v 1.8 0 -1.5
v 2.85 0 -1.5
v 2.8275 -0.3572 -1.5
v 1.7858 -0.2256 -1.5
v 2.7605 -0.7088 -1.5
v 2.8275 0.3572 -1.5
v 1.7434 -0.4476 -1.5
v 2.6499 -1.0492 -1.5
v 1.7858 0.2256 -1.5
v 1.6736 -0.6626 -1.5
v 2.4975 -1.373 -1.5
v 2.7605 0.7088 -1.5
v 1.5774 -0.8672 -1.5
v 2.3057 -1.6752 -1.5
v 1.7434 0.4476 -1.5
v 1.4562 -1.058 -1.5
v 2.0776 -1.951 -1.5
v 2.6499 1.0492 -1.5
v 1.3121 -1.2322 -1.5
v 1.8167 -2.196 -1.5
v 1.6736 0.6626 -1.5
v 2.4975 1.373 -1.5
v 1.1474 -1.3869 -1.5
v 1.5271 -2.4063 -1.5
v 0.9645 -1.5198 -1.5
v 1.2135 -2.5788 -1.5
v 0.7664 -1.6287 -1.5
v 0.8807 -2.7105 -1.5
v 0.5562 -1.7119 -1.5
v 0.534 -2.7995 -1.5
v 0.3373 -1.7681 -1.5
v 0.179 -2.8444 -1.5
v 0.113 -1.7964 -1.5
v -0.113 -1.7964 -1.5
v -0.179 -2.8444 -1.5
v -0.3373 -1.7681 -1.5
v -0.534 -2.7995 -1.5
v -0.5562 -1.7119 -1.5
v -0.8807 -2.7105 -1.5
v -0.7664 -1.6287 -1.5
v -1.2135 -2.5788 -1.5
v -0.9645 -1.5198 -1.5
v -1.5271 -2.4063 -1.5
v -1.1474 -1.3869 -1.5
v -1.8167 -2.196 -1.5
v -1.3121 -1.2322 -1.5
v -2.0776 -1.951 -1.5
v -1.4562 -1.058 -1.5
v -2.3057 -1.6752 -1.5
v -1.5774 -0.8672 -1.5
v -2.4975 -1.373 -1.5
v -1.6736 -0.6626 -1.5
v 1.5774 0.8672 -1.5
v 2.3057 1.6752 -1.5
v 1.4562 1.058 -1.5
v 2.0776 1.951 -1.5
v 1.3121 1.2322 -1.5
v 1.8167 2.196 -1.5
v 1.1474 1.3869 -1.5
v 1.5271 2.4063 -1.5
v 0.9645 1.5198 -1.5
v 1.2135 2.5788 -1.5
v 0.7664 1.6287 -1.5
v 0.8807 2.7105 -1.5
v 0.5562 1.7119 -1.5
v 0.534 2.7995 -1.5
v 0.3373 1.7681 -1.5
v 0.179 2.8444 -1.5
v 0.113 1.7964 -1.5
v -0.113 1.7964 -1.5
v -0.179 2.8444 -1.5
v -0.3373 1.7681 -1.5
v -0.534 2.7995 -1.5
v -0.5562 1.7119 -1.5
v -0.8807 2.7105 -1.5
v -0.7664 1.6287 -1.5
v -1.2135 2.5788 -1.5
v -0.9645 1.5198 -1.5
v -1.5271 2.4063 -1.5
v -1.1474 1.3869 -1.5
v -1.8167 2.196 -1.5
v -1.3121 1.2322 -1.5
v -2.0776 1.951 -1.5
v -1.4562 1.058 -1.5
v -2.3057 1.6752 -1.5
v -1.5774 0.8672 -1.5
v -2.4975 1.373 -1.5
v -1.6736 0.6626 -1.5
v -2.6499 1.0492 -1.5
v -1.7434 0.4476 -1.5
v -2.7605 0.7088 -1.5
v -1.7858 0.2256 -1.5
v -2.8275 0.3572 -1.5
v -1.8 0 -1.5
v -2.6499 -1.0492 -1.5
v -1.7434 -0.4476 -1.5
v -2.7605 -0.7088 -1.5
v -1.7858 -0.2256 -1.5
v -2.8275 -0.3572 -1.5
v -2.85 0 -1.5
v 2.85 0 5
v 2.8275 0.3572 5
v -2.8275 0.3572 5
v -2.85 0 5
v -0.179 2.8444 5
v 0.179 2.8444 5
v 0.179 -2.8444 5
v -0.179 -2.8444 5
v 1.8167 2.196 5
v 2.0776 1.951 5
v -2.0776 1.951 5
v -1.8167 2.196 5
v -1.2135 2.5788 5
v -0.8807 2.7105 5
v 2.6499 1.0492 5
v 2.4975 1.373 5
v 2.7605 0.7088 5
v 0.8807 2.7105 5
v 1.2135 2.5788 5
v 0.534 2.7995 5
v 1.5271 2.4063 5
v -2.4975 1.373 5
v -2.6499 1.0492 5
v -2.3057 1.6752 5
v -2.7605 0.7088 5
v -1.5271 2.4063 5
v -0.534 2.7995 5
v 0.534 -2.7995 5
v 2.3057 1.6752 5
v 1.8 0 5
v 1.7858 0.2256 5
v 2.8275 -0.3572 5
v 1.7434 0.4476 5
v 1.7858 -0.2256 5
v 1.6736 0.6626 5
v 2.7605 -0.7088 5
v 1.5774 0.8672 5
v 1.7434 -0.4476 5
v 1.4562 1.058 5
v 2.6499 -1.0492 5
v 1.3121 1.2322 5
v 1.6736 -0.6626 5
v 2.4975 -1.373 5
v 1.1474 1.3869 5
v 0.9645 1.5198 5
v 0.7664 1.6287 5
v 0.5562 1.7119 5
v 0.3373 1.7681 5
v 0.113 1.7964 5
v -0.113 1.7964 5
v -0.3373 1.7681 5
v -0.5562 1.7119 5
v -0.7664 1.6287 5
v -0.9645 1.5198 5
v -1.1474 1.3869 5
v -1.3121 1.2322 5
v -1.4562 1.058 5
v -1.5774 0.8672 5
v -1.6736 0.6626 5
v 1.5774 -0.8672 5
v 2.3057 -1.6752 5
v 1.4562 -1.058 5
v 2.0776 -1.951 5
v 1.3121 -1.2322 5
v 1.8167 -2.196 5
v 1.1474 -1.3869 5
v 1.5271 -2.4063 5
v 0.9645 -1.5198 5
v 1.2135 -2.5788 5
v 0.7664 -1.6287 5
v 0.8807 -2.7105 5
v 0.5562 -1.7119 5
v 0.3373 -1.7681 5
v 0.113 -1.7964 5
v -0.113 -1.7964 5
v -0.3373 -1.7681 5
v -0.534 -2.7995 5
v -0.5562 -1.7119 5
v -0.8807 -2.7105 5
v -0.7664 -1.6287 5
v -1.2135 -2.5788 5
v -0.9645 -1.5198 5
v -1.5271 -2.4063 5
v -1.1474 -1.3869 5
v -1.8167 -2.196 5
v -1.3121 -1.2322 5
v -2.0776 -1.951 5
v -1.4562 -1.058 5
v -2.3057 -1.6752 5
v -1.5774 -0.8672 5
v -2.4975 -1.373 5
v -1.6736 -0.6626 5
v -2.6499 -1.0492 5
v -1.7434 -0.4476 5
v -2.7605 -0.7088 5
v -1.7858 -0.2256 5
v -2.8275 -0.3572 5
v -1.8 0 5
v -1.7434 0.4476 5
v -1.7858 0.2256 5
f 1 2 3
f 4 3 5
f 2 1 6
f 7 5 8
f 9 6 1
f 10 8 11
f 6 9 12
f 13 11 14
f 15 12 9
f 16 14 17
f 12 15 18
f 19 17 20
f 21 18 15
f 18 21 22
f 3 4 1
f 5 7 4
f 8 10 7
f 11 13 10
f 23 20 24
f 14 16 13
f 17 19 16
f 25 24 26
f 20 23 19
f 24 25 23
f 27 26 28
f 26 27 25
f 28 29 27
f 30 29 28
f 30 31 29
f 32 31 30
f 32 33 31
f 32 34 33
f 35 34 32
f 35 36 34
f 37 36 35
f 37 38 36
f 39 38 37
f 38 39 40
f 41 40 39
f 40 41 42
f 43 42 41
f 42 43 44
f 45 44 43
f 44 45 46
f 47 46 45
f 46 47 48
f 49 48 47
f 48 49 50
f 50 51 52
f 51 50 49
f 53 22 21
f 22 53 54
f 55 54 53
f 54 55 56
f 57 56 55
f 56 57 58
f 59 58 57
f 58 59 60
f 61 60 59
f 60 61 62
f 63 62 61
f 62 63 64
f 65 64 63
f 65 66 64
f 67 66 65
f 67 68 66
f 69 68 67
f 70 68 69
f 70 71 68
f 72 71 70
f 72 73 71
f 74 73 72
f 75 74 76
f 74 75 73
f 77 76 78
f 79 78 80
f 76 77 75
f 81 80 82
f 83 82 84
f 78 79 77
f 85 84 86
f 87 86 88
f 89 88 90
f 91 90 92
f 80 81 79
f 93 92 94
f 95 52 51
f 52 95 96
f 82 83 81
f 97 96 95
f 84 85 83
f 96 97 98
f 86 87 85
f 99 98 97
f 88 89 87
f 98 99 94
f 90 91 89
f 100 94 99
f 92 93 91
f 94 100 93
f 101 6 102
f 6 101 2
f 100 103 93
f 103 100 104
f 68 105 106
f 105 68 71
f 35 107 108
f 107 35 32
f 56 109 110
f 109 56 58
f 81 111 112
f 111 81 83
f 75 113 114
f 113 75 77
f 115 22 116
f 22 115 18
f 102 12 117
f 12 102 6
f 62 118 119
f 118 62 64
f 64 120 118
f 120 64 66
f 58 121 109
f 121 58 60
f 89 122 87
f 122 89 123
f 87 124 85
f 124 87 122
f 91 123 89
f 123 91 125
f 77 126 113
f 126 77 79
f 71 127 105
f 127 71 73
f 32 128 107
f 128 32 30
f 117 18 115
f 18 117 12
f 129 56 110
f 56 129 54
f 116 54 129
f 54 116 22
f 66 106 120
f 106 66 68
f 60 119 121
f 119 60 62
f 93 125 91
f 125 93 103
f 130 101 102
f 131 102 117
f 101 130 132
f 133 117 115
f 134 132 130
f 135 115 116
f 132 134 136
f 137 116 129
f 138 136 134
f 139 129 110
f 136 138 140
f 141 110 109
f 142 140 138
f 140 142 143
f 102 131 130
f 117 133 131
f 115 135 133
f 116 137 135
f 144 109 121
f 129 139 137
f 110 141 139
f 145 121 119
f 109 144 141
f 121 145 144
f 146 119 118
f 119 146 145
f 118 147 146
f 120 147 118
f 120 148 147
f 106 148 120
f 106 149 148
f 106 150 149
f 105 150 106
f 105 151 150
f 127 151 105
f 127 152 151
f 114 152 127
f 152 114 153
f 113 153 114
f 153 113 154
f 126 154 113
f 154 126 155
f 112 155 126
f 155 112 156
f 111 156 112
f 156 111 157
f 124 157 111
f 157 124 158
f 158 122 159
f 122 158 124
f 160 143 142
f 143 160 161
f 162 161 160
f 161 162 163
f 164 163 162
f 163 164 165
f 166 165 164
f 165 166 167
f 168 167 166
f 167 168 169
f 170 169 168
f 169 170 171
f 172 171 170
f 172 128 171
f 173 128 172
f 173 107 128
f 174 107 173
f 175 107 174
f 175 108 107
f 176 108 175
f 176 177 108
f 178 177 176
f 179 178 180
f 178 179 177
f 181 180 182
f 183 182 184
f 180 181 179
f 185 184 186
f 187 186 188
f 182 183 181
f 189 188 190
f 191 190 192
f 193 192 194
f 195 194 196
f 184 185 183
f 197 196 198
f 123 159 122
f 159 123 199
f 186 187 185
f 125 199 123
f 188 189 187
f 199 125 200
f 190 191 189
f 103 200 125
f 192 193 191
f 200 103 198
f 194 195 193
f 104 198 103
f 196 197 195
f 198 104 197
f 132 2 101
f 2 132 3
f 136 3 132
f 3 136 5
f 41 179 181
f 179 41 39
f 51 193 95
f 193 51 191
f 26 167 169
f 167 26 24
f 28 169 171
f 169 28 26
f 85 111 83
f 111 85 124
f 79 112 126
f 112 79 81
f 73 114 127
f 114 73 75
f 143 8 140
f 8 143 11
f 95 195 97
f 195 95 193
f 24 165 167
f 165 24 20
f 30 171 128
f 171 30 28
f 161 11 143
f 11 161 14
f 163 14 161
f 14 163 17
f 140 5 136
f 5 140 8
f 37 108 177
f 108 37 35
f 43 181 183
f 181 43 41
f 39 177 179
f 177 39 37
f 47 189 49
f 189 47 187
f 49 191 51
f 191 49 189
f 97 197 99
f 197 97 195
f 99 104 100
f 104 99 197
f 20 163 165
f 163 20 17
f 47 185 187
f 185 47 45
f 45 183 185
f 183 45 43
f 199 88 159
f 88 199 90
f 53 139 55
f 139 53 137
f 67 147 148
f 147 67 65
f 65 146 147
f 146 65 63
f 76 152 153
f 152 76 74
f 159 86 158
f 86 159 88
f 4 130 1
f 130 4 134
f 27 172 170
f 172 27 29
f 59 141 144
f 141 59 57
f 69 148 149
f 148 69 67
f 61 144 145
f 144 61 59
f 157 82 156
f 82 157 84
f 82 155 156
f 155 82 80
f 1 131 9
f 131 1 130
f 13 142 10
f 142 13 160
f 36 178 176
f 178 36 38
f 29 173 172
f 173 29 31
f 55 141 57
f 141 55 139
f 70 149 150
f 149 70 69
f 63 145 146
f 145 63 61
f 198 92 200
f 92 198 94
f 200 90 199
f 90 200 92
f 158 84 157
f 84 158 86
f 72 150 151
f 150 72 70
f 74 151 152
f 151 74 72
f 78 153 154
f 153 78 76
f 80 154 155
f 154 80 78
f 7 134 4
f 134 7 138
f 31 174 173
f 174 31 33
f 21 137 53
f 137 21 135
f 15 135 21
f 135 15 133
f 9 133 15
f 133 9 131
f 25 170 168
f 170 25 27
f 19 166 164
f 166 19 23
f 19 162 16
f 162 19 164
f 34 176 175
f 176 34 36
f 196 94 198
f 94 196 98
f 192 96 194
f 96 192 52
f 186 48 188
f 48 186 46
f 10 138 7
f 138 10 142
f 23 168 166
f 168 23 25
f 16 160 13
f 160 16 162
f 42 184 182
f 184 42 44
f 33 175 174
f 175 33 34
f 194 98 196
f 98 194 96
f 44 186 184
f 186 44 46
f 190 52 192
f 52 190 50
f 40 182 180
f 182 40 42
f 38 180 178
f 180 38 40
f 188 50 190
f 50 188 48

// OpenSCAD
$fn = 50;


difference() {
	union() {
		translate(v = [0, 0, -1.5000000000]) {
			rotate(a = [0, 0, 0]) {
				cylinder(h = 3, r = 1.0000000000);
			}
		}
		translate(v = [0, 0, -1.5000000000]) {
			rotate(a = [0, 0, 0]) {
				cylinder(h = 6.5000000000, r = 2.8500000000);
			}
		}
	}
	union() {
		translate(v = [0, 0, -125.0000000000]) {
			rotate(a = [0, 0, 0]) {
				cylinder(h = 250, r = 1.8000000000);
			}
		}
	}
}
